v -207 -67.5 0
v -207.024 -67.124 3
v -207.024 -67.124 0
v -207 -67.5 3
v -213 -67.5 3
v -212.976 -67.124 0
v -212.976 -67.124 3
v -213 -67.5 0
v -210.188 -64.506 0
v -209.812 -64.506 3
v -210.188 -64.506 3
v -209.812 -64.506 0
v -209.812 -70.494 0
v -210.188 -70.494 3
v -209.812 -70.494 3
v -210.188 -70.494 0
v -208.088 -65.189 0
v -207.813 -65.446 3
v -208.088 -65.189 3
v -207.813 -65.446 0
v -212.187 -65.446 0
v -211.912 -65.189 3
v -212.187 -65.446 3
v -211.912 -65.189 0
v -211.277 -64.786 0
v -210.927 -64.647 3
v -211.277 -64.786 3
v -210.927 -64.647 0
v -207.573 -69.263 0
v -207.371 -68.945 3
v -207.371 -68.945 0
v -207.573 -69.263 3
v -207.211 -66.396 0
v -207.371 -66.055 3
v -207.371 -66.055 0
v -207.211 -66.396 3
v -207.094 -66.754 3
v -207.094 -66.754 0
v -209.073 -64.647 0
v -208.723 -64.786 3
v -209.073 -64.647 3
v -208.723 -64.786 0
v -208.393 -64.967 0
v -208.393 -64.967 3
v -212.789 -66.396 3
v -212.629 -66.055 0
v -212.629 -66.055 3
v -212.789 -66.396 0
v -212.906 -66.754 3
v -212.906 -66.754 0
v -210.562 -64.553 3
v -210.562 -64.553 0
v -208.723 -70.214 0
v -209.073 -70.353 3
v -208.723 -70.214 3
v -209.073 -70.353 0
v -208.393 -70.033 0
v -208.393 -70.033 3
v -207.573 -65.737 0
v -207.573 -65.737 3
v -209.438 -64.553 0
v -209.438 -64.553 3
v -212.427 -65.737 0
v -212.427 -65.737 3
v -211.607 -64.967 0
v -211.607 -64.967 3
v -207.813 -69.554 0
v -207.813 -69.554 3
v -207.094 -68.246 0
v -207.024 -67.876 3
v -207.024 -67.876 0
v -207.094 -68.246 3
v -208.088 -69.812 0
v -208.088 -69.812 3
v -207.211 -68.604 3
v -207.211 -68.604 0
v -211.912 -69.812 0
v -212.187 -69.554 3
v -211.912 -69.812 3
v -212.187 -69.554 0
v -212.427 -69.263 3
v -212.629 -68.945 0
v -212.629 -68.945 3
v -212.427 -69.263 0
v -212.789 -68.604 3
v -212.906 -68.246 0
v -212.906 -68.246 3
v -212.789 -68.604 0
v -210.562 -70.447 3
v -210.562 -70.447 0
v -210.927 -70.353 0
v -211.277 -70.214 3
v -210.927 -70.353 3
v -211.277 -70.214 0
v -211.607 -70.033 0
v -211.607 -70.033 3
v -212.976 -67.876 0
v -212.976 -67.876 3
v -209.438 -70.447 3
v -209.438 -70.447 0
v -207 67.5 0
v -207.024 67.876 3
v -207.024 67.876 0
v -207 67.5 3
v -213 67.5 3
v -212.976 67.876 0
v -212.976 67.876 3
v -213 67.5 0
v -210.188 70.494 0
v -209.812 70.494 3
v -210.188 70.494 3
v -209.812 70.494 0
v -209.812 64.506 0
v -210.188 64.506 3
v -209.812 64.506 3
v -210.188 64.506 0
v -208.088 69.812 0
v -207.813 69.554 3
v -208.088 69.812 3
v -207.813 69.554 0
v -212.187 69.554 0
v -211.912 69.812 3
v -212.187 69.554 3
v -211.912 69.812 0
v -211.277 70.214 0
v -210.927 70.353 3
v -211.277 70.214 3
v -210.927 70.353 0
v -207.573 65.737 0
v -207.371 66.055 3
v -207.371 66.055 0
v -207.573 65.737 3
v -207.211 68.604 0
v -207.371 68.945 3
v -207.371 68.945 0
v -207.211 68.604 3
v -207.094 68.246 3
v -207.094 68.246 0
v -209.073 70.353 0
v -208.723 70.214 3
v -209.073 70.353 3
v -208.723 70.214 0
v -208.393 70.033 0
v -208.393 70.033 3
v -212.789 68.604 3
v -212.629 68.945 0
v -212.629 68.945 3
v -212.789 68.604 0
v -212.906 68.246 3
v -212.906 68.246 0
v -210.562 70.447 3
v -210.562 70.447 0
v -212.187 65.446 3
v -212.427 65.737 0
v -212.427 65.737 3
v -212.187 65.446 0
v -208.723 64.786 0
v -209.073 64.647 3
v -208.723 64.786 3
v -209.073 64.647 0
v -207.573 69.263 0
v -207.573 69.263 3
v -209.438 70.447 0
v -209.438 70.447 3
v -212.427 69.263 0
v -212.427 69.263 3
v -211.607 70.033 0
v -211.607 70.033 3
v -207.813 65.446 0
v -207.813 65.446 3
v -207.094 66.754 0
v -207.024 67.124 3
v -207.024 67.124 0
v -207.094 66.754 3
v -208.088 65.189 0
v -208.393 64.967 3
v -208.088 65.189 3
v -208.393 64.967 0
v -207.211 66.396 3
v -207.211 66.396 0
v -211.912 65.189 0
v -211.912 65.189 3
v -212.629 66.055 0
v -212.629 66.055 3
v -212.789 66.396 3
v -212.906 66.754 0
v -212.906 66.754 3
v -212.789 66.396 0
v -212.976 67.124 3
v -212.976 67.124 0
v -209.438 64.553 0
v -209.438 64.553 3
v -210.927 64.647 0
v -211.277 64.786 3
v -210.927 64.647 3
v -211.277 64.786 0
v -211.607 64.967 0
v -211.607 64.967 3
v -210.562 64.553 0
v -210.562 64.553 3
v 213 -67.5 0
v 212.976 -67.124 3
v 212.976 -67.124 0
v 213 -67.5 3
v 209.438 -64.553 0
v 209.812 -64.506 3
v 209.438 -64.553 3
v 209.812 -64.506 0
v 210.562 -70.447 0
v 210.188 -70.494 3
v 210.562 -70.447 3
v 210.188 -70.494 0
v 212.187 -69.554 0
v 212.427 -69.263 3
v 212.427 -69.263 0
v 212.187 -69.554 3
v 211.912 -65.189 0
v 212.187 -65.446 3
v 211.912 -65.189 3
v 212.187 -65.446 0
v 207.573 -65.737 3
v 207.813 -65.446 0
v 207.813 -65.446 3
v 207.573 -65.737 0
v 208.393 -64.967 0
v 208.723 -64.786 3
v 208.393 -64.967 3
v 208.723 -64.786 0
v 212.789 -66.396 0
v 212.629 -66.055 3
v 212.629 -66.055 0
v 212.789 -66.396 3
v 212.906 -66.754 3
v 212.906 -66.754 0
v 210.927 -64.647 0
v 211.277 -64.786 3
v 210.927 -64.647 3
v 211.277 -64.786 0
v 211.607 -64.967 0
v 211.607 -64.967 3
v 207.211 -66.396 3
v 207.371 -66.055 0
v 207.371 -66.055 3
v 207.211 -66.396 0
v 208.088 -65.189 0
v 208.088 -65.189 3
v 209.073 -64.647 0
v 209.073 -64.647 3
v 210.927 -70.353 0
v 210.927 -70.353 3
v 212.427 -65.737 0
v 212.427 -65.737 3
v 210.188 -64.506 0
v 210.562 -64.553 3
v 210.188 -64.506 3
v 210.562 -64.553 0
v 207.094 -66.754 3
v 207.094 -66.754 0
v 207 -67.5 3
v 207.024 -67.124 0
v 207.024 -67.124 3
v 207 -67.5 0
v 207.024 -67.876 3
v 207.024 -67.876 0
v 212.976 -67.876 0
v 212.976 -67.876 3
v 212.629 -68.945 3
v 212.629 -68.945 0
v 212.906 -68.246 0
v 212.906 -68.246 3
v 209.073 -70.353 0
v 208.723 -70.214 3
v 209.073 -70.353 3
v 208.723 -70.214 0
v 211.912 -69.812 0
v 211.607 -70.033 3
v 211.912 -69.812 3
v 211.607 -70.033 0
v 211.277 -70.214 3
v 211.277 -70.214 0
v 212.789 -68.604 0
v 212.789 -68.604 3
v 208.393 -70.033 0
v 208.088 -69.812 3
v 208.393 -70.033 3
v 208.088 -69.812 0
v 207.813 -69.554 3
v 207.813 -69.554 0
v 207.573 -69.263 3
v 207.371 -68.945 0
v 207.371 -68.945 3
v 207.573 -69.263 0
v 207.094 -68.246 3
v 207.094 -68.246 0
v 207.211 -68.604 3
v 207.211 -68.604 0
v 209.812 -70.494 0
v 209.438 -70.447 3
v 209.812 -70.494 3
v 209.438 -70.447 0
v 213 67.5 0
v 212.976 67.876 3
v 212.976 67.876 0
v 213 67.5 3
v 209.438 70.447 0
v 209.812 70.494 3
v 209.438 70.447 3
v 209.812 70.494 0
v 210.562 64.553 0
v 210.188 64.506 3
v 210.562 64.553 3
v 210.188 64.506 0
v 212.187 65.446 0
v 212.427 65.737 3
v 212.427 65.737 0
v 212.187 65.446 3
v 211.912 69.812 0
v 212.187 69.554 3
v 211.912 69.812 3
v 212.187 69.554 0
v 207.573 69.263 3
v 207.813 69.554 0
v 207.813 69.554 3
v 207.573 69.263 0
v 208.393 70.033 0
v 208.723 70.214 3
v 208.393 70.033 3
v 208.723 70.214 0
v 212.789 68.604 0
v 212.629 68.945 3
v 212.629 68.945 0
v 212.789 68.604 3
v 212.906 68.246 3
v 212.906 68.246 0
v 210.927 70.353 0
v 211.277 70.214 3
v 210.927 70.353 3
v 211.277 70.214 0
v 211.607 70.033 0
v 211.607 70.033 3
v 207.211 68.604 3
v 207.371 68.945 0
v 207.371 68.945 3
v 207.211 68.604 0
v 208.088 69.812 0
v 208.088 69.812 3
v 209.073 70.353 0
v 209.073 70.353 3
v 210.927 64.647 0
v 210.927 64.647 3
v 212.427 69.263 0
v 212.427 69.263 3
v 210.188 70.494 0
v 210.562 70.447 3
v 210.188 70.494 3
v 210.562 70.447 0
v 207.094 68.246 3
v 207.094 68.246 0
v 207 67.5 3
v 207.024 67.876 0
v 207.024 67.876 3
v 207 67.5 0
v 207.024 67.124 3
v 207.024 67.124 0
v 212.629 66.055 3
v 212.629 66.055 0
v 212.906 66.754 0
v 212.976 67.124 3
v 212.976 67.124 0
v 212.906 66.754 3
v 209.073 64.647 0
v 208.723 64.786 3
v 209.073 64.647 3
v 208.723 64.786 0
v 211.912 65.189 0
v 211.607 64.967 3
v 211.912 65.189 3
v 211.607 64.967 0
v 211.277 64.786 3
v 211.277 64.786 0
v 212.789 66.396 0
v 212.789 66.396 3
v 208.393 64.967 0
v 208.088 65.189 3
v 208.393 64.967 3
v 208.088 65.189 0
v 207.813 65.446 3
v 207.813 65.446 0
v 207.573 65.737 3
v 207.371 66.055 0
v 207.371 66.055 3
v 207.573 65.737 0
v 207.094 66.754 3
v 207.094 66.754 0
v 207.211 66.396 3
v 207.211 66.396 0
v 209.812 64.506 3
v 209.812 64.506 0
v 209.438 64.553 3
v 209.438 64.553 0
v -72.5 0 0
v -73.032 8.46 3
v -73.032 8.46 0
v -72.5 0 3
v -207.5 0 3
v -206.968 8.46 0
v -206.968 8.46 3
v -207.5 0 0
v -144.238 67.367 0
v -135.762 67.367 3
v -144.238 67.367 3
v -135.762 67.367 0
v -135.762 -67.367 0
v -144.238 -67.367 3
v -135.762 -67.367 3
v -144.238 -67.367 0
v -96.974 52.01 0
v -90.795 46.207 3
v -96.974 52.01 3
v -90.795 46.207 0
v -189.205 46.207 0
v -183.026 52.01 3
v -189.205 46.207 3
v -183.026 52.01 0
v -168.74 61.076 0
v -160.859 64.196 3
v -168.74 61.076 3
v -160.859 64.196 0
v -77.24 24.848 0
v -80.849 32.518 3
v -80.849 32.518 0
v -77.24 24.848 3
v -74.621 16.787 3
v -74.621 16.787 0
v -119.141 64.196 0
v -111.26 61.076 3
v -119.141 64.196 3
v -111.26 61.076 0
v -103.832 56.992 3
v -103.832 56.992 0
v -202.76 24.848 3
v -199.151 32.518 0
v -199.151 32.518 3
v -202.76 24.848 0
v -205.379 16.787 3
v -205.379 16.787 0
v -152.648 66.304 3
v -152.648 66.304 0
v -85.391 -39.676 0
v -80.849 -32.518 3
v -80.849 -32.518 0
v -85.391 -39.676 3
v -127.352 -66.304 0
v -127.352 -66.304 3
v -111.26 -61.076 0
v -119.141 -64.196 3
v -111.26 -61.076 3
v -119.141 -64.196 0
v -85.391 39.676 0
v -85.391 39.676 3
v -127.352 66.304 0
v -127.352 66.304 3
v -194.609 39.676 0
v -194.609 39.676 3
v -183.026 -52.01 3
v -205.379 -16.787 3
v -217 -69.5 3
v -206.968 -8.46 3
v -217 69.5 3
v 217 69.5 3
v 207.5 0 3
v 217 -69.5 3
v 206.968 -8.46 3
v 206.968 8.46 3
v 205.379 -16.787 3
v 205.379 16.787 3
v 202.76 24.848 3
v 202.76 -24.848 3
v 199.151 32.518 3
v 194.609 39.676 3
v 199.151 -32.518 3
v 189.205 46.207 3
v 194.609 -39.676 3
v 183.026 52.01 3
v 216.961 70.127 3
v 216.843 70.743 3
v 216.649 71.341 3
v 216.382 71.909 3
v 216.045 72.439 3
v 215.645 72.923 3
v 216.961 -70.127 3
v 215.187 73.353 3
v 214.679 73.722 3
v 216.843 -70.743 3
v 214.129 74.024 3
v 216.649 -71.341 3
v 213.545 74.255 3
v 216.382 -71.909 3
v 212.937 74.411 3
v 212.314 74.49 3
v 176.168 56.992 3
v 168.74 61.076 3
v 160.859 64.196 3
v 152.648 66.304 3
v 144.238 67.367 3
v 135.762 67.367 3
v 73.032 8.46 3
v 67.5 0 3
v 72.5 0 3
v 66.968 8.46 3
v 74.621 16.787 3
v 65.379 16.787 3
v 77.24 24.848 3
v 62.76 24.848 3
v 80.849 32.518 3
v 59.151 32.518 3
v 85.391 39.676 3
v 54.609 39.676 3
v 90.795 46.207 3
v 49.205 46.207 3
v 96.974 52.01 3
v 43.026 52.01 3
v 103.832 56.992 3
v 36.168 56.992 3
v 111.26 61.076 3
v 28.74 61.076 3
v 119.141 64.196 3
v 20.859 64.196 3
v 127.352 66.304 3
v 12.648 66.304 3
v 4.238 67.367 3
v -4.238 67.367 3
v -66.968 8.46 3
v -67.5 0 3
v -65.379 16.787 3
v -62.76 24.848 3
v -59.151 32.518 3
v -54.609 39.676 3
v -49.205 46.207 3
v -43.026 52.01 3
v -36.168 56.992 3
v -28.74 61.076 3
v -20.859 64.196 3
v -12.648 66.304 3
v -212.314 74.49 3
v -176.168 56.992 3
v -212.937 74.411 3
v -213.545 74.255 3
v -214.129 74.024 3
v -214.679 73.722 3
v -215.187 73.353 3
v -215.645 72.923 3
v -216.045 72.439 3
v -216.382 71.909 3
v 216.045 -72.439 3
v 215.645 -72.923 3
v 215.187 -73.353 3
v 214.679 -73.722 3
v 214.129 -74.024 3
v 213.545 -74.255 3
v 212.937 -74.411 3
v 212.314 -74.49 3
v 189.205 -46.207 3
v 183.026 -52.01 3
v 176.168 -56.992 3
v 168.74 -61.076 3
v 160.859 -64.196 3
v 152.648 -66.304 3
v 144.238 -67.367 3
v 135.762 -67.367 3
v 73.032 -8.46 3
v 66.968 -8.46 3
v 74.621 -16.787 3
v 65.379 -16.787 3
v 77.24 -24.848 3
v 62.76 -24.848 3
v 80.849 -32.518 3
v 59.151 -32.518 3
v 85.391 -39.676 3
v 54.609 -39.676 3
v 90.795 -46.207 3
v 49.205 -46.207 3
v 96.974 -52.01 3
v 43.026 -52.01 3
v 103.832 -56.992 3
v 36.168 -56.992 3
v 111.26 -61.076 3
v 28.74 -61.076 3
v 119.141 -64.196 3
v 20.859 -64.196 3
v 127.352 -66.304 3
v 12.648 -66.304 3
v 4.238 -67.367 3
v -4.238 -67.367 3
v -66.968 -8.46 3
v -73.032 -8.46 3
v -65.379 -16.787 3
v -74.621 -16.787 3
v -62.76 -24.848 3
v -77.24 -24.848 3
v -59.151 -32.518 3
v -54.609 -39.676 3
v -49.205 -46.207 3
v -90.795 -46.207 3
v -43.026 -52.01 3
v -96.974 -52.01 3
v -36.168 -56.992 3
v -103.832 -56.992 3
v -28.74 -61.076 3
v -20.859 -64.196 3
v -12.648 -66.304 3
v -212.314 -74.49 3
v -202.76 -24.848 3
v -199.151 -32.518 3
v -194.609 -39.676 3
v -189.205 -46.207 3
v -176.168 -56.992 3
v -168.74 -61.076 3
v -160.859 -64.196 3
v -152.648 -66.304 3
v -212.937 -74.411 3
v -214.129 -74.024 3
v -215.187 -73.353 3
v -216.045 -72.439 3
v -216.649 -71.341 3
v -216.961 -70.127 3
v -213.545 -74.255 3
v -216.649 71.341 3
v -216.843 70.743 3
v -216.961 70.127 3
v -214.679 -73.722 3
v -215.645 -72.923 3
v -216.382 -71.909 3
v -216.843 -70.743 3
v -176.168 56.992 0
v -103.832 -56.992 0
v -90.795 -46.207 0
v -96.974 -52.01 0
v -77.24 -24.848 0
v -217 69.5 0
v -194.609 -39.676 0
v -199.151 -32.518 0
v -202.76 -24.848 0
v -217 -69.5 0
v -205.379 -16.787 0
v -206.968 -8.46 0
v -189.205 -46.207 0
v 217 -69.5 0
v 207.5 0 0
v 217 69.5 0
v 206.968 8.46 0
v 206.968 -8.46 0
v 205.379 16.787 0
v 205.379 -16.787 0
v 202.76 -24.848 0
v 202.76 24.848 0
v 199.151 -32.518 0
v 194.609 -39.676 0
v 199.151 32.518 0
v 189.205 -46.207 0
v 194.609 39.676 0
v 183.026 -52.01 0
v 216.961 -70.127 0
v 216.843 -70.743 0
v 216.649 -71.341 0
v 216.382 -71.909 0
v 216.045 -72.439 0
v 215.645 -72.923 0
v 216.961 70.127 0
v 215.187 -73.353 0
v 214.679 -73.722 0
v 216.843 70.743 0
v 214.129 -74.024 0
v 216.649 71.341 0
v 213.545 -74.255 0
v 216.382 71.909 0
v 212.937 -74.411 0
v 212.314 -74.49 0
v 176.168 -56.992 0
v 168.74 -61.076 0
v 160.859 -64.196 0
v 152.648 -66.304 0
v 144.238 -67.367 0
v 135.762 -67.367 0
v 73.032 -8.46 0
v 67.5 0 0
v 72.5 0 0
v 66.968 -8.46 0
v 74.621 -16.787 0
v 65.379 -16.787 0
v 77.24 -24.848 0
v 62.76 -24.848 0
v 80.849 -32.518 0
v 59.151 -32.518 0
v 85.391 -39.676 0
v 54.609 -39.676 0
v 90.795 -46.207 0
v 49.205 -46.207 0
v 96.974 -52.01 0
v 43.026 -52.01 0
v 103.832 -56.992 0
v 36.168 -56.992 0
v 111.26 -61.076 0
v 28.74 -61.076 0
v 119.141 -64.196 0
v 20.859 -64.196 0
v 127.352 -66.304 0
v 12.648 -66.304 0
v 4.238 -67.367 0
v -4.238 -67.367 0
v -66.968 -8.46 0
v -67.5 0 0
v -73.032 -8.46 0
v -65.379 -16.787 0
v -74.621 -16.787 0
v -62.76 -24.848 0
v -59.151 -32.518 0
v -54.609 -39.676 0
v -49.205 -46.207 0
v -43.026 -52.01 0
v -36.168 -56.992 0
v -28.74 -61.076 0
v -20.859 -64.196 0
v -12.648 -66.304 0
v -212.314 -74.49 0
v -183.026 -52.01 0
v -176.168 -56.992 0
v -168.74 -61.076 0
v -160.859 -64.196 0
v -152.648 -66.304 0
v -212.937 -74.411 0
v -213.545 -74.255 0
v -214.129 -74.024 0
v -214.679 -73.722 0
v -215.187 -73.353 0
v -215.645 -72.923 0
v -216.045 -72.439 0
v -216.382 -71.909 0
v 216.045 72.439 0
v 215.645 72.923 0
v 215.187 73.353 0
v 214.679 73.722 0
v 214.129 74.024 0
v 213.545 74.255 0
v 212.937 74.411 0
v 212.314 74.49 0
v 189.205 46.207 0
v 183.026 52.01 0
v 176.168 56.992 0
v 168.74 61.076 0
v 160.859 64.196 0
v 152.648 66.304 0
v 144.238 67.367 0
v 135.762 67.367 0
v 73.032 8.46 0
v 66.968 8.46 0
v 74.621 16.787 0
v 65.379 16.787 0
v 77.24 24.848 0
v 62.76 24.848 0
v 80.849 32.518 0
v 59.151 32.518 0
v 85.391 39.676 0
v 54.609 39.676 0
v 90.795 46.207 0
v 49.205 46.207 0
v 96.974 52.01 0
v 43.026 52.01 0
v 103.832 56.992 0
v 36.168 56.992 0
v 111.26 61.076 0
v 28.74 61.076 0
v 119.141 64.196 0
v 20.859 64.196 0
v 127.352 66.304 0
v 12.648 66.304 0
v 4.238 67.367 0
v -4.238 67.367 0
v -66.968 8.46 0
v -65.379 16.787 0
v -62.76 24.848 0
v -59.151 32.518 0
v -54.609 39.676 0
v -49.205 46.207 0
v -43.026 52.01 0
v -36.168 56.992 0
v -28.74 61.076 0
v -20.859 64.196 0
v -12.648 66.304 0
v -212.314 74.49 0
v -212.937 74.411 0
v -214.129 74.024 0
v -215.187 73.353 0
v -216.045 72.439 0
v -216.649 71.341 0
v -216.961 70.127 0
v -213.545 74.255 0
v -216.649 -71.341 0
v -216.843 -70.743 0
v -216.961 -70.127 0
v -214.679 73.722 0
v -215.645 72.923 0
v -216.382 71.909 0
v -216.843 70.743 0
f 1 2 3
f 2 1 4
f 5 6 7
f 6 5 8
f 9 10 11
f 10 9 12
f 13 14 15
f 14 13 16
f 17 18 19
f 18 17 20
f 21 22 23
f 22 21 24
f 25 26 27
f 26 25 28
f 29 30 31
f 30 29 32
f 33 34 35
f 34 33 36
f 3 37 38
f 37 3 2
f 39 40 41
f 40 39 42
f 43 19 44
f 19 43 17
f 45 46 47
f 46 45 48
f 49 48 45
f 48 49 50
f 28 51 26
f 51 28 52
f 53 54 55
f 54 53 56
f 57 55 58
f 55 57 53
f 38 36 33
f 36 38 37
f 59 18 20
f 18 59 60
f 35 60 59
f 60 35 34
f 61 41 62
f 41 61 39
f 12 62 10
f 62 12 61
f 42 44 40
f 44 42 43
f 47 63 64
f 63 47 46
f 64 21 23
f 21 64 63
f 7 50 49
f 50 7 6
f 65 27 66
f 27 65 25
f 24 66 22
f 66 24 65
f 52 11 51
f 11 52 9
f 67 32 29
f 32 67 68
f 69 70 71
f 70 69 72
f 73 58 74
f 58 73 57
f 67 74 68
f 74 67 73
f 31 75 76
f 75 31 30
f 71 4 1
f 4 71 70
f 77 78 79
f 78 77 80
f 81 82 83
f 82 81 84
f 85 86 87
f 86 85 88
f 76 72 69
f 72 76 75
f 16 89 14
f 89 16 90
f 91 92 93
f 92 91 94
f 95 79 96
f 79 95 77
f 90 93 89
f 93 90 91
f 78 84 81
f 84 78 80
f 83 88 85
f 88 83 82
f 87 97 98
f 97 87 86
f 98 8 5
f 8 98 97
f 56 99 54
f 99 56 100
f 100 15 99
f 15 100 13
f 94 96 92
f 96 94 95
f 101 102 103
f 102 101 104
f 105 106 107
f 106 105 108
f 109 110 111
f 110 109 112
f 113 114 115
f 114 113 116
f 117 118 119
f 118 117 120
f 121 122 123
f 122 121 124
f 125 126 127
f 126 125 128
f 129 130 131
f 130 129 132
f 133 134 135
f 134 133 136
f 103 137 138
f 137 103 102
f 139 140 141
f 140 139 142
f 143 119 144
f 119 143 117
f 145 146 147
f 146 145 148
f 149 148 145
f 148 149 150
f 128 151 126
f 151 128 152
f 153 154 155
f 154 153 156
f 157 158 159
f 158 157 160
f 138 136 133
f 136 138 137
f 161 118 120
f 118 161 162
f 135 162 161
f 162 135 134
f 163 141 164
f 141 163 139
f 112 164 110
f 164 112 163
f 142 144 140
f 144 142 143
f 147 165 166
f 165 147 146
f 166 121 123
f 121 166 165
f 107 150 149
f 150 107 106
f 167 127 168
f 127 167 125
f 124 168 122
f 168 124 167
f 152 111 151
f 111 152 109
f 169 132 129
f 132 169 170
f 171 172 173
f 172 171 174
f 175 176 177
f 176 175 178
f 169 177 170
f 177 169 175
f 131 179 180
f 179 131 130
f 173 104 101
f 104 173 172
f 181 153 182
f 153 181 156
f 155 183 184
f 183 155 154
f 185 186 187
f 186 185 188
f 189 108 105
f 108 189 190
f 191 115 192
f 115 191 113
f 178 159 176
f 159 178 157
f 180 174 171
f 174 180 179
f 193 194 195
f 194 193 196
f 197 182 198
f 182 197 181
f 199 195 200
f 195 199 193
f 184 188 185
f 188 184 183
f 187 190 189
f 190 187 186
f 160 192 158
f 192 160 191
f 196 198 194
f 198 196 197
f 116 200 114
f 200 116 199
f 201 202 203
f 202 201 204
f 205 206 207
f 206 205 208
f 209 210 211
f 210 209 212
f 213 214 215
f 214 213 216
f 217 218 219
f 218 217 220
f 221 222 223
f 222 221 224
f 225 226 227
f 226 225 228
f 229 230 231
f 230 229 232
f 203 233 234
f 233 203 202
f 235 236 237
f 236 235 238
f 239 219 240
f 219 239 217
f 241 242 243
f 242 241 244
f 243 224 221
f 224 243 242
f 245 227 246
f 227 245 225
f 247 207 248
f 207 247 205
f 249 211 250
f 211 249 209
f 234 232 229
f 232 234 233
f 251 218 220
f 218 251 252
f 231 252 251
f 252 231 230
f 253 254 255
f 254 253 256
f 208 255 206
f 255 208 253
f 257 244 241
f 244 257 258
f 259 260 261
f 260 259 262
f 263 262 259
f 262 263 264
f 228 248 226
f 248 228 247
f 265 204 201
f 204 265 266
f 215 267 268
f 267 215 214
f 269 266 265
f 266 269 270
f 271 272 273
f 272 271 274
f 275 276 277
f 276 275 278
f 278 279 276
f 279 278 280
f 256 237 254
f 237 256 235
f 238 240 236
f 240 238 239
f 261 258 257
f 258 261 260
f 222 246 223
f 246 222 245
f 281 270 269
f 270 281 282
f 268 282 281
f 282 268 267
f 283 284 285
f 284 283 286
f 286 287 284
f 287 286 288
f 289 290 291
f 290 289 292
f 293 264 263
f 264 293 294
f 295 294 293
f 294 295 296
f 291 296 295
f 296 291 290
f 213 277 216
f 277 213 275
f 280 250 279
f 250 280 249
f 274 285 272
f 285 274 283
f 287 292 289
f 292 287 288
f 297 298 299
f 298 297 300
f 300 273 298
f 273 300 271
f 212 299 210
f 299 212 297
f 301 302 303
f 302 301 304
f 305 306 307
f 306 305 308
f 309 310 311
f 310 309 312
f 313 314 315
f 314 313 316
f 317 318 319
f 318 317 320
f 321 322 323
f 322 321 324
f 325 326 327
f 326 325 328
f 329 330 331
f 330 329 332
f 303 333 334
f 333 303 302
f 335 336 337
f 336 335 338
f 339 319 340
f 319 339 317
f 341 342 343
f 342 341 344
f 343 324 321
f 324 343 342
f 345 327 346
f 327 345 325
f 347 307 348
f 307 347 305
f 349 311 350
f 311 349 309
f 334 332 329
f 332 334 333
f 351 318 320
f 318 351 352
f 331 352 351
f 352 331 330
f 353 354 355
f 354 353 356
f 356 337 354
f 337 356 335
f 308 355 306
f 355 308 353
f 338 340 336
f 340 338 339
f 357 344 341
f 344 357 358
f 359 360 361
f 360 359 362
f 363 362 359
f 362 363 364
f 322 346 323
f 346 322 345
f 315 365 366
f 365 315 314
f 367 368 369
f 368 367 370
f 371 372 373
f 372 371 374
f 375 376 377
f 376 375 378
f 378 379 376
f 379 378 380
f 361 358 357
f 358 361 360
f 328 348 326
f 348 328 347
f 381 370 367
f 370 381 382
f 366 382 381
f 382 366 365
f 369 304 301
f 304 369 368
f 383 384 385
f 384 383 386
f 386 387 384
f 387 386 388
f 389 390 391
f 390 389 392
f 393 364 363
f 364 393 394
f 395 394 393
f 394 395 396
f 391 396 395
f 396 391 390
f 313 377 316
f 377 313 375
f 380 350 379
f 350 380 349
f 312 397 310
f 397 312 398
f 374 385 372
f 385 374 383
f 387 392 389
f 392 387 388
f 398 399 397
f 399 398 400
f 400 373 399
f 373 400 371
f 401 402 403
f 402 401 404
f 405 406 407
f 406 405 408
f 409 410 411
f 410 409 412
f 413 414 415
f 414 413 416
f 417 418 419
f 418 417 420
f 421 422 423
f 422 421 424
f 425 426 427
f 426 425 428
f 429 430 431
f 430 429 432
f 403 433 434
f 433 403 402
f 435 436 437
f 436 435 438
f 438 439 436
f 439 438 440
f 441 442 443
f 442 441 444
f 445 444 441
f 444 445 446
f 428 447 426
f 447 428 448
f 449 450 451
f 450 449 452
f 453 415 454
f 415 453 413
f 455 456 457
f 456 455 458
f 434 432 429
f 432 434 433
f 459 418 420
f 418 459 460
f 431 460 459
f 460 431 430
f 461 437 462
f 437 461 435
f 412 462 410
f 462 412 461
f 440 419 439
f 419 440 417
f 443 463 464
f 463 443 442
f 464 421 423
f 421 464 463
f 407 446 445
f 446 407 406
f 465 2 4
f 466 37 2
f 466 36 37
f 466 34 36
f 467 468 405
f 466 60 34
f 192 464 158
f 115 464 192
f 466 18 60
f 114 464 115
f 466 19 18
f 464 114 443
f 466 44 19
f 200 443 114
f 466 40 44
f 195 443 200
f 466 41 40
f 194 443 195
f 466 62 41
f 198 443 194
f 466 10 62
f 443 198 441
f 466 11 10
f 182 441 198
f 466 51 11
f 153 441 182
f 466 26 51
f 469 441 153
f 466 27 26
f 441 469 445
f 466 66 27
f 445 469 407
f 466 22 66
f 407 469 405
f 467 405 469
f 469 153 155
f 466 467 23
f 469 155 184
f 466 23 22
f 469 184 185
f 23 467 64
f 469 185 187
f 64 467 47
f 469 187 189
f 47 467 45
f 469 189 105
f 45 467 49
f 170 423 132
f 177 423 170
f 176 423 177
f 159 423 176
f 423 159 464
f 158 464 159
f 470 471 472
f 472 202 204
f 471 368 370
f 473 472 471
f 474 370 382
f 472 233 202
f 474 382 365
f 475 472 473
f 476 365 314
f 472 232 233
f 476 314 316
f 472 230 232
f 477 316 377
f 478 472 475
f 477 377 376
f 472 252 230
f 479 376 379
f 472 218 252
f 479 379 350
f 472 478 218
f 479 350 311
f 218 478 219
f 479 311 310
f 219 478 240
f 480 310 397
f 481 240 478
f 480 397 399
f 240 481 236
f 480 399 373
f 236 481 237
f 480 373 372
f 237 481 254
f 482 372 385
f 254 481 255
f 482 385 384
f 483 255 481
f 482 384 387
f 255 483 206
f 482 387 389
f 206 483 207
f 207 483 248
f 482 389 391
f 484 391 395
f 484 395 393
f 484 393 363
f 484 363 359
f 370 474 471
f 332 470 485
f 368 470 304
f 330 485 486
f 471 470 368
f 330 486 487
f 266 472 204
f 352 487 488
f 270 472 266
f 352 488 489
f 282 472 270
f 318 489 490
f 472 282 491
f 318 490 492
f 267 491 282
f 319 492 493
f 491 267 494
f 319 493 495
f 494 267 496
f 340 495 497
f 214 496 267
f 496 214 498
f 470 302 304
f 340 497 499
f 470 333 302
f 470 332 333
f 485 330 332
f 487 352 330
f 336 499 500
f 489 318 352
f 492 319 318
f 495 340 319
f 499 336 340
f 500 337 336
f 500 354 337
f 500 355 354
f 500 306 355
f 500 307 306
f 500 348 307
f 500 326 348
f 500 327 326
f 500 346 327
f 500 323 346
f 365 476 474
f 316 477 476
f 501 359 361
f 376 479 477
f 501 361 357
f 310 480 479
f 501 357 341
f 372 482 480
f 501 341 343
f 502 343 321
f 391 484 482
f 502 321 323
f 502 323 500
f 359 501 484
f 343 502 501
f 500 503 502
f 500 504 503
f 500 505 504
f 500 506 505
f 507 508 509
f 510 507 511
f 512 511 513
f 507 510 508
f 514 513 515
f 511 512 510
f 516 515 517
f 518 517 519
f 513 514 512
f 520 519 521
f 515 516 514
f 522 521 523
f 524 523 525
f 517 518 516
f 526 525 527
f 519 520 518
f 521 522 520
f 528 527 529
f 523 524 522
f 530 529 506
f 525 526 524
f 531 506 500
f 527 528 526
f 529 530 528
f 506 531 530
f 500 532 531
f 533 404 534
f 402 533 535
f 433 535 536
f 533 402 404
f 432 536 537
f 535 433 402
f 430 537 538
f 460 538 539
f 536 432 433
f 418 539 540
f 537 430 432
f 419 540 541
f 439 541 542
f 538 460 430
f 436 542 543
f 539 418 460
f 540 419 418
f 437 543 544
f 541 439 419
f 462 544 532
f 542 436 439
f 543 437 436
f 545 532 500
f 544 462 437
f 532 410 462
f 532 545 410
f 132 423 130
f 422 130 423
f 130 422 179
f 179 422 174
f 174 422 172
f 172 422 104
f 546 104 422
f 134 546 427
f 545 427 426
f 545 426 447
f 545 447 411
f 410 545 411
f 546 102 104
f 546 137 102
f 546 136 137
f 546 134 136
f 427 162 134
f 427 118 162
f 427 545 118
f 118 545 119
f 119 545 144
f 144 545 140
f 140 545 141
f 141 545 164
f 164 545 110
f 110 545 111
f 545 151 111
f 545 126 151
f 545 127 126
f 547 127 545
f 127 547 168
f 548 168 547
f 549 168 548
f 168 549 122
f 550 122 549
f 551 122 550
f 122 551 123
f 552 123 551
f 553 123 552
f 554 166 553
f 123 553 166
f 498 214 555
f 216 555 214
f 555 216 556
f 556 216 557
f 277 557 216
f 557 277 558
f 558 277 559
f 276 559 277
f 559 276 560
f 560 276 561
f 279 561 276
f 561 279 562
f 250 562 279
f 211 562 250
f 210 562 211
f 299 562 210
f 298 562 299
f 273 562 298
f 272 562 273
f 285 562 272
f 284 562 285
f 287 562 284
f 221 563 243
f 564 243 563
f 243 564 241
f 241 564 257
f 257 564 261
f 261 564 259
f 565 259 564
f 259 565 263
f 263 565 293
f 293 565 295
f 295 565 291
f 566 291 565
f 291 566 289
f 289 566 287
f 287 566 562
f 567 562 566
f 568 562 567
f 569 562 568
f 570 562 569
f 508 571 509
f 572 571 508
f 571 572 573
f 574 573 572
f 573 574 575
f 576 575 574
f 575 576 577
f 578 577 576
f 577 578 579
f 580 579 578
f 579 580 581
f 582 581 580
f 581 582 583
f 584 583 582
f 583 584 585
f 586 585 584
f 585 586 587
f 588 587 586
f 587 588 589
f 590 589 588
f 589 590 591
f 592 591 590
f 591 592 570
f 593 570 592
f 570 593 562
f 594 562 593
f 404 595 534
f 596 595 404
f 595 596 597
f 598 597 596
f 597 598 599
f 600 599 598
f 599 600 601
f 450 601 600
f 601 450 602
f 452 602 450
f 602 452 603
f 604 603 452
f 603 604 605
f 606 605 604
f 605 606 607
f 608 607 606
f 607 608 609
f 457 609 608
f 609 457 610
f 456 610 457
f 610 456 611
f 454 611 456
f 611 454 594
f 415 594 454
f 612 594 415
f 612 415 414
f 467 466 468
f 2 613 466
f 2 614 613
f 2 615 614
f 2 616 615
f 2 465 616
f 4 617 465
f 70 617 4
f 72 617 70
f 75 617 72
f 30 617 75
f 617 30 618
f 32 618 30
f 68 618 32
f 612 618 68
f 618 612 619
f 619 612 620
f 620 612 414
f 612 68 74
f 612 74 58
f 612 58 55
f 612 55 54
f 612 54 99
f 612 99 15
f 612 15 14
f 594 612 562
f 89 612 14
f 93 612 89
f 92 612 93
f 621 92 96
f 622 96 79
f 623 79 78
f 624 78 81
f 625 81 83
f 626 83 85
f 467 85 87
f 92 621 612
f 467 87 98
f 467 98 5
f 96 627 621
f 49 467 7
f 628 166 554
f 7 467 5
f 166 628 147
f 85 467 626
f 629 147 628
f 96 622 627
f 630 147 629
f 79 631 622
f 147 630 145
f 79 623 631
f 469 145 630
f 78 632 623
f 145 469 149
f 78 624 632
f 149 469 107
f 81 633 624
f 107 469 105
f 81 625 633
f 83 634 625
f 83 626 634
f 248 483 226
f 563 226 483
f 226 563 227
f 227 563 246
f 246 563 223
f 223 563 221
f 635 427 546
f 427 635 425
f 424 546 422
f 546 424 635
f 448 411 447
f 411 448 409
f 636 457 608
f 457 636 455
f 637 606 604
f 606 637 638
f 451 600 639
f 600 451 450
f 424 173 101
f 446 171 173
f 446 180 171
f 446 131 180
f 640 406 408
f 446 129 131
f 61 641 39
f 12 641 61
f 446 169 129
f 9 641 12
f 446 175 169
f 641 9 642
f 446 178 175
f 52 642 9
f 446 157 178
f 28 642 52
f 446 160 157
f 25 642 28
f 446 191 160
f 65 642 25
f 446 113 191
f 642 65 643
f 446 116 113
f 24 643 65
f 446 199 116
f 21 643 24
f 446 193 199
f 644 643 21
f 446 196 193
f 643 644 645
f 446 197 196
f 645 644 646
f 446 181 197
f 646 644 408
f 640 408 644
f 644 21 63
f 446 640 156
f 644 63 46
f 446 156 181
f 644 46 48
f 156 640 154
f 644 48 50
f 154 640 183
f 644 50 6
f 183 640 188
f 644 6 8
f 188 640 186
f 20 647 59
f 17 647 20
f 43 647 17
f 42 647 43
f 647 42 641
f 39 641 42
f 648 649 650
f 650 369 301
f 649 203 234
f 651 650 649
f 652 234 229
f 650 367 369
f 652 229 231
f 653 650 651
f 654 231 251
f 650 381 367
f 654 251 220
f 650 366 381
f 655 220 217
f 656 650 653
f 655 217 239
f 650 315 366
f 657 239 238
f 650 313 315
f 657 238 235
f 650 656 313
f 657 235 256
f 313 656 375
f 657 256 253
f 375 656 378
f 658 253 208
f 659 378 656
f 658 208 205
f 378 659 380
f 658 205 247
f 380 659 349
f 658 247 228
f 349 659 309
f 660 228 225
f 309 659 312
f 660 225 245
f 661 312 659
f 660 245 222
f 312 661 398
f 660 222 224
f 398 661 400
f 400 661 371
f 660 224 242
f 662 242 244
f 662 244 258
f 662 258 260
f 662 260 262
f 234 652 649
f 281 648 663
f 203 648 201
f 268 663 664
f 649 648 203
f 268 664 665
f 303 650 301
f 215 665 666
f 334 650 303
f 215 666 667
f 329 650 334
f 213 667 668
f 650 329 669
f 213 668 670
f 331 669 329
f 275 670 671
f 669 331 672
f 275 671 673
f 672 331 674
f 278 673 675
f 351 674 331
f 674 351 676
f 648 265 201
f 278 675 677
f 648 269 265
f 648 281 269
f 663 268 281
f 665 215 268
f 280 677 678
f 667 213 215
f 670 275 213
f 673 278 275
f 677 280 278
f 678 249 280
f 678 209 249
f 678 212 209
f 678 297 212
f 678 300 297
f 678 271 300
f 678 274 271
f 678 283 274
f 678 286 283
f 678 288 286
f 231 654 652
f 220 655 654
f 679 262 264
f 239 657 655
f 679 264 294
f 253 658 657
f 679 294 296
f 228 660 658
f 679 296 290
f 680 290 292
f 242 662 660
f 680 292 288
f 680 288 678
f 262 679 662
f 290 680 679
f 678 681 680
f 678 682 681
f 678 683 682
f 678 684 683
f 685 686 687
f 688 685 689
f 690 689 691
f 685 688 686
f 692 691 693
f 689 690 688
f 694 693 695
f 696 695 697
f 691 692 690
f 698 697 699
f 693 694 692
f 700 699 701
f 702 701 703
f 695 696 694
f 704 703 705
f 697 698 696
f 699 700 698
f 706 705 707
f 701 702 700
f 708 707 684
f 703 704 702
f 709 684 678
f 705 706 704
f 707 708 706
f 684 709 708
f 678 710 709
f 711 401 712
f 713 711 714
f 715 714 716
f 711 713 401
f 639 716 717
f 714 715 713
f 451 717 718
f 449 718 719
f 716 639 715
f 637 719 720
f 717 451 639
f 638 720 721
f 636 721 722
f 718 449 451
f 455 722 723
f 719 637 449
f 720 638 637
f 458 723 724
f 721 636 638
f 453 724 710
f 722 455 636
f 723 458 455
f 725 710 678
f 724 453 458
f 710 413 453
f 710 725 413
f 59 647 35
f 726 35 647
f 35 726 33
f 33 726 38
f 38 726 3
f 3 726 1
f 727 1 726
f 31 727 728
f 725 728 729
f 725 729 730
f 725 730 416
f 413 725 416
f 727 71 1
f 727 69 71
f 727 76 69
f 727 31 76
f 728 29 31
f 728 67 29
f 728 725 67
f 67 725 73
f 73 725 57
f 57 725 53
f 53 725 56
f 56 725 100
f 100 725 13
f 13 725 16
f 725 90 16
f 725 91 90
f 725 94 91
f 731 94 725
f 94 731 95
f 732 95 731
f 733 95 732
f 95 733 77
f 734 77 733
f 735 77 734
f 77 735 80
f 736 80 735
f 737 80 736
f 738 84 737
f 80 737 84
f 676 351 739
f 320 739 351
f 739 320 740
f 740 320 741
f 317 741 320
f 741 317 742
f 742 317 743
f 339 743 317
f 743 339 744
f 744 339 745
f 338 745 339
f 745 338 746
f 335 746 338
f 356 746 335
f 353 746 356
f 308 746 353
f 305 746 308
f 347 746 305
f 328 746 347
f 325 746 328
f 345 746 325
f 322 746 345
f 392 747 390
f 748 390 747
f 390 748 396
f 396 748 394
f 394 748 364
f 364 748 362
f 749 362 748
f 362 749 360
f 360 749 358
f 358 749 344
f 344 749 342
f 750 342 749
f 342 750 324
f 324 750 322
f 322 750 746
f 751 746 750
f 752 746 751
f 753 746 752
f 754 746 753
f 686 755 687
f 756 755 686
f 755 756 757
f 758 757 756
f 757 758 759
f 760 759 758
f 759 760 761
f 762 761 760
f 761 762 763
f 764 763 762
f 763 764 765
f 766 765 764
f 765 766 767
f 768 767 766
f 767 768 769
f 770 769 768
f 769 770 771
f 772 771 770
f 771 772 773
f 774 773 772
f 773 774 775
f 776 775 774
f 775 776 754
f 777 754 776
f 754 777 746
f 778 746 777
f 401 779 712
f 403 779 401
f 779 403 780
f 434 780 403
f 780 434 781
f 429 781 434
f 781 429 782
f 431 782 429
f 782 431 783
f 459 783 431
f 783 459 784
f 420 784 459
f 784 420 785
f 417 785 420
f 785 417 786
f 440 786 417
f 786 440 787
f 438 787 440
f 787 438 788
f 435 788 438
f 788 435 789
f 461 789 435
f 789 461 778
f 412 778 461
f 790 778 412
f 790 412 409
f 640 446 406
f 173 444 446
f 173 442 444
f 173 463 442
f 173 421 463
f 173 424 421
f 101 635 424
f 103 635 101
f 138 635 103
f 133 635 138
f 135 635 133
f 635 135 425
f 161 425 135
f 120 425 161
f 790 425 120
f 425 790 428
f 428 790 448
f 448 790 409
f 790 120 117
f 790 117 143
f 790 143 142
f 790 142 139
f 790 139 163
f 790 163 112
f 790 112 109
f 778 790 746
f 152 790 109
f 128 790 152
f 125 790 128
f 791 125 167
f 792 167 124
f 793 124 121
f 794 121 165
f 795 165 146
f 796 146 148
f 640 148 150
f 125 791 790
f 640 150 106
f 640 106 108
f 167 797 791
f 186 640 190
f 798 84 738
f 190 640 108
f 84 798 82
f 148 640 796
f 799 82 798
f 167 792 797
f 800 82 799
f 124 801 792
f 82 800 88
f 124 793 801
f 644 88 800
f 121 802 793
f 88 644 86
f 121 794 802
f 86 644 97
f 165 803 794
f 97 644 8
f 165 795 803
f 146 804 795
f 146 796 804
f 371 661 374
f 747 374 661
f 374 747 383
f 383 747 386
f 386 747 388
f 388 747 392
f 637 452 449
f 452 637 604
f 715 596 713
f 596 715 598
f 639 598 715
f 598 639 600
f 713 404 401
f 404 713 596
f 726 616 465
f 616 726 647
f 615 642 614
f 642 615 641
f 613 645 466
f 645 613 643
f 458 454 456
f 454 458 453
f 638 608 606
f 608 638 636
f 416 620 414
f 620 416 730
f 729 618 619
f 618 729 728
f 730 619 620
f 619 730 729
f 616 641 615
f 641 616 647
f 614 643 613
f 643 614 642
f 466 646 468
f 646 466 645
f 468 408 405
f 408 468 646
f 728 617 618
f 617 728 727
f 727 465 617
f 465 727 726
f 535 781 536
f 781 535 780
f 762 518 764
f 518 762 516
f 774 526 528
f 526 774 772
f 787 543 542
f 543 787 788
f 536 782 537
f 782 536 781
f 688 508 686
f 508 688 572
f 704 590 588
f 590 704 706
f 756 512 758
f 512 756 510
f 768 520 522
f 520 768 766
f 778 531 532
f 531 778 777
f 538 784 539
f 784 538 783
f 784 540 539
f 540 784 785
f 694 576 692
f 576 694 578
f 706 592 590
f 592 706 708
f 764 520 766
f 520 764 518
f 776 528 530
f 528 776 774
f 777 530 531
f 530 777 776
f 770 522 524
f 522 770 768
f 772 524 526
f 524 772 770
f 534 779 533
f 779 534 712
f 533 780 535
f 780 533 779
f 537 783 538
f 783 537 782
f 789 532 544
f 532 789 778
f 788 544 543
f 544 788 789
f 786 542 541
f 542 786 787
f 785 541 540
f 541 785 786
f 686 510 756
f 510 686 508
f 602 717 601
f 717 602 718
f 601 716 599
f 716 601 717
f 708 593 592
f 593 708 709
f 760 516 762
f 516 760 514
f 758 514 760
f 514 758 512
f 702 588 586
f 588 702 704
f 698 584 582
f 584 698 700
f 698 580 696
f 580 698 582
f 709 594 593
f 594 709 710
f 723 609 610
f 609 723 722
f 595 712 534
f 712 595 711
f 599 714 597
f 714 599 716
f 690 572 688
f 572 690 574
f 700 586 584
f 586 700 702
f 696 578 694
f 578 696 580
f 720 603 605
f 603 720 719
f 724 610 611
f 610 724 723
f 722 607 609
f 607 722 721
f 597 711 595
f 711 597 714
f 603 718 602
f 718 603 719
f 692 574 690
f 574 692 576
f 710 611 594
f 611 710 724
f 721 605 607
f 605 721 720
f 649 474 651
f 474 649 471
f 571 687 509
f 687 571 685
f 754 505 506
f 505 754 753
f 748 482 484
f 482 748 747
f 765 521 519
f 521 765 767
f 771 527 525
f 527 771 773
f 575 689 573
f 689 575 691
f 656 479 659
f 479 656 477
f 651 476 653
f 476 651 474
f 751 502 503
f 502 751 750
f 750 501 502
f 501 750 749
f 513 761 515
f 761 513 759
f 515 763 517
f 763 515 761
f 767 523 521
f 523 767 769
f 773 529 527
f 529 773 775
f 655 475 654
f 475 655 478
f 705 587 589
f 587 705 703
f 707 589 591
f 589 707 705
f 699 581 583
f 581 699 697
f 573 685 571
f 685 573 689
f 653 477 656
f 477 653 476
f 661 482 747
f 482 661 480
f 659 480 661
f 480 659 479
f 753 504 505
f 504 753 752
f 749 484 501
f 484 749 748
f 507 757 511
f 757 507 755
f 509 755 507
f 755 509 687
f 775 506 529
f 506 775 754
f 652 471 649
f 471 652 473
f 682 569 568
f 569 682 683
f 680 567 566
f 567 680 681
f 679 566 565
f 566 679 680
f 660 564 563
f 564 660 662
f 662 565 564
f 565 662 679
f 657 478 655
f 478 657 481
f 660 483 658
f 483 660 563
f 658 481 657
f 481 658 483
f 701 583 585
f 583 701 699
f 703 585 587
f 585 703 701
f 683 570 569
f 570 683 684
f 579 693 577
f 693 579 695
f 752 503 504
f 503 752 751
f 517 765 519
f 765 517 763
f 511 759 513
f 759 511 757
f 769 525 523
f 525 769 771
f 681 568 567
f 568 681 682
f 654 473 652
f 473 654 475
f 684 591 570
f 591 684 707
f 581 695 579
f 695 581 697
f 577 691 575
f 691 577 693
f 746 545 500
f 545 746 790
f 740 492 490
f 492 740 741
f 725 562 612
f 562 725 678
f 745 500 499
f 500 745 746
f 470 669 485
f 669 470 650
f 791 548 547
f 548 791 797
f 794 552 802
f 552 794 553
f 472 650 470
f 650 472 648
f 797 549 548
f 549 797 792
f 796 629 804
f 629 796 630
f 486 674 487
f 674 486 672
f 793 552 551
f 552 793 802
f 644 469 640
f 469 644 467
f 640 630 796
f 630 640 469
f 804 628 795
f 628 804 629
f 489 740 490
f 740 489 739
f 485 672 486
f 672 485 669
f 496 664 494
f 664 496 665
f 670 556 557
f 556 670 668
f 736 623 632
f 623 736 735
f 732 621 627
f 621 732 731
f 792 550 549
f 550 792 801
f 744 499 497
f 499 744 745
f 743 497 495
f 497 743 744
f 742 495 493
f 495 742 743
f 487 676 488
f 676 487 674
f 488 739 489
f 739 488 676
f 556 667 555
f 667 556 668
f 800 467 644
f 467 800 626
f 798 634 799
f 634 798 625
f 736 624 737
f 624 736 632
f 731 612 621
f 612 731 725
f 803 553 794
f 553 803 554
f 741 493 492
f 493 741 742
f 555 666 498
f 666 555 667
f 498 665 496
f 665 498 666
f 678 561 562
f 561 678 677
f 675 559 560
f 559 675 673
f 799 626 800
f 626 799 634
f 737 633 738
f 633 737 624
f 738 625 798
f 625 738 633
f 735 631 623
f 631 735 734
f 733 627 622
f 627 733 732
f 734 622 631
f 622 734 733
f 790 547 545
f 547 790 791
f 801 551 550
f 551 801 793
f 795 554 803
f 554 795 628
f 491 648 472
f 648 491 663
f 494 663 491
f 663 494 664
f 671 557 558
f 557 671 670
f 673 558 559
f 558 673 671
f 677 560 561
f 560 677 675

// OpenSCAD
$fn = 50;


difference() {
	union() {
		hull() {
			translate(v = [-212.0000000000, 69.5000000000, 0]) {
				cylinder(h = 3, r = 5);
			}
			translate(v = [212.0000000000, 69.5000000000, 0]) {
				cylinder(h = 3, r = 5);
			}
			translate(v = [-212.0000000000, -69.5000000000, 0]) {
				cylinder(h = 3, r = 5);
			}
			translate(v = [212.0000000000, -69.5000000000, 0]) {
				cylinder(h = 3, r = 5);
			}
		}
	}
	union() {
		#translate(v = [-210.0000000000, -67.5000000000, -100.0000000000]) {
			cylinder(h = 200, r = 3.0000000000);
		}
		#translate(v = [-210.0000000000, 67.5000000000, -100.0000000000]) {
			cylinder(h = 200, r = 3.0000000000);
		}
		#translate(v = [210.0000000000, -67.5000000000, -100.0000000000]) {
			cylinder(h = 200, r = 3.0000000000);
		}
		#translate(v = [210.0000000000, 67.5000000000, -100.0000000000]) {
			cylinder(h = 200, r = 3.0000000000);
		}
		#translate(v = [-140.0000000000, 0, 0]) {
			cylinder(h = 3, r = 67.5000000000);
		}
		#cylinder(h = 3, r = 67.5000000000);
		#translate(v = [140.0000000000, 0, 0]) {
			cylinder(h = 3, r = 67.5000000000);
		}
	}
}
